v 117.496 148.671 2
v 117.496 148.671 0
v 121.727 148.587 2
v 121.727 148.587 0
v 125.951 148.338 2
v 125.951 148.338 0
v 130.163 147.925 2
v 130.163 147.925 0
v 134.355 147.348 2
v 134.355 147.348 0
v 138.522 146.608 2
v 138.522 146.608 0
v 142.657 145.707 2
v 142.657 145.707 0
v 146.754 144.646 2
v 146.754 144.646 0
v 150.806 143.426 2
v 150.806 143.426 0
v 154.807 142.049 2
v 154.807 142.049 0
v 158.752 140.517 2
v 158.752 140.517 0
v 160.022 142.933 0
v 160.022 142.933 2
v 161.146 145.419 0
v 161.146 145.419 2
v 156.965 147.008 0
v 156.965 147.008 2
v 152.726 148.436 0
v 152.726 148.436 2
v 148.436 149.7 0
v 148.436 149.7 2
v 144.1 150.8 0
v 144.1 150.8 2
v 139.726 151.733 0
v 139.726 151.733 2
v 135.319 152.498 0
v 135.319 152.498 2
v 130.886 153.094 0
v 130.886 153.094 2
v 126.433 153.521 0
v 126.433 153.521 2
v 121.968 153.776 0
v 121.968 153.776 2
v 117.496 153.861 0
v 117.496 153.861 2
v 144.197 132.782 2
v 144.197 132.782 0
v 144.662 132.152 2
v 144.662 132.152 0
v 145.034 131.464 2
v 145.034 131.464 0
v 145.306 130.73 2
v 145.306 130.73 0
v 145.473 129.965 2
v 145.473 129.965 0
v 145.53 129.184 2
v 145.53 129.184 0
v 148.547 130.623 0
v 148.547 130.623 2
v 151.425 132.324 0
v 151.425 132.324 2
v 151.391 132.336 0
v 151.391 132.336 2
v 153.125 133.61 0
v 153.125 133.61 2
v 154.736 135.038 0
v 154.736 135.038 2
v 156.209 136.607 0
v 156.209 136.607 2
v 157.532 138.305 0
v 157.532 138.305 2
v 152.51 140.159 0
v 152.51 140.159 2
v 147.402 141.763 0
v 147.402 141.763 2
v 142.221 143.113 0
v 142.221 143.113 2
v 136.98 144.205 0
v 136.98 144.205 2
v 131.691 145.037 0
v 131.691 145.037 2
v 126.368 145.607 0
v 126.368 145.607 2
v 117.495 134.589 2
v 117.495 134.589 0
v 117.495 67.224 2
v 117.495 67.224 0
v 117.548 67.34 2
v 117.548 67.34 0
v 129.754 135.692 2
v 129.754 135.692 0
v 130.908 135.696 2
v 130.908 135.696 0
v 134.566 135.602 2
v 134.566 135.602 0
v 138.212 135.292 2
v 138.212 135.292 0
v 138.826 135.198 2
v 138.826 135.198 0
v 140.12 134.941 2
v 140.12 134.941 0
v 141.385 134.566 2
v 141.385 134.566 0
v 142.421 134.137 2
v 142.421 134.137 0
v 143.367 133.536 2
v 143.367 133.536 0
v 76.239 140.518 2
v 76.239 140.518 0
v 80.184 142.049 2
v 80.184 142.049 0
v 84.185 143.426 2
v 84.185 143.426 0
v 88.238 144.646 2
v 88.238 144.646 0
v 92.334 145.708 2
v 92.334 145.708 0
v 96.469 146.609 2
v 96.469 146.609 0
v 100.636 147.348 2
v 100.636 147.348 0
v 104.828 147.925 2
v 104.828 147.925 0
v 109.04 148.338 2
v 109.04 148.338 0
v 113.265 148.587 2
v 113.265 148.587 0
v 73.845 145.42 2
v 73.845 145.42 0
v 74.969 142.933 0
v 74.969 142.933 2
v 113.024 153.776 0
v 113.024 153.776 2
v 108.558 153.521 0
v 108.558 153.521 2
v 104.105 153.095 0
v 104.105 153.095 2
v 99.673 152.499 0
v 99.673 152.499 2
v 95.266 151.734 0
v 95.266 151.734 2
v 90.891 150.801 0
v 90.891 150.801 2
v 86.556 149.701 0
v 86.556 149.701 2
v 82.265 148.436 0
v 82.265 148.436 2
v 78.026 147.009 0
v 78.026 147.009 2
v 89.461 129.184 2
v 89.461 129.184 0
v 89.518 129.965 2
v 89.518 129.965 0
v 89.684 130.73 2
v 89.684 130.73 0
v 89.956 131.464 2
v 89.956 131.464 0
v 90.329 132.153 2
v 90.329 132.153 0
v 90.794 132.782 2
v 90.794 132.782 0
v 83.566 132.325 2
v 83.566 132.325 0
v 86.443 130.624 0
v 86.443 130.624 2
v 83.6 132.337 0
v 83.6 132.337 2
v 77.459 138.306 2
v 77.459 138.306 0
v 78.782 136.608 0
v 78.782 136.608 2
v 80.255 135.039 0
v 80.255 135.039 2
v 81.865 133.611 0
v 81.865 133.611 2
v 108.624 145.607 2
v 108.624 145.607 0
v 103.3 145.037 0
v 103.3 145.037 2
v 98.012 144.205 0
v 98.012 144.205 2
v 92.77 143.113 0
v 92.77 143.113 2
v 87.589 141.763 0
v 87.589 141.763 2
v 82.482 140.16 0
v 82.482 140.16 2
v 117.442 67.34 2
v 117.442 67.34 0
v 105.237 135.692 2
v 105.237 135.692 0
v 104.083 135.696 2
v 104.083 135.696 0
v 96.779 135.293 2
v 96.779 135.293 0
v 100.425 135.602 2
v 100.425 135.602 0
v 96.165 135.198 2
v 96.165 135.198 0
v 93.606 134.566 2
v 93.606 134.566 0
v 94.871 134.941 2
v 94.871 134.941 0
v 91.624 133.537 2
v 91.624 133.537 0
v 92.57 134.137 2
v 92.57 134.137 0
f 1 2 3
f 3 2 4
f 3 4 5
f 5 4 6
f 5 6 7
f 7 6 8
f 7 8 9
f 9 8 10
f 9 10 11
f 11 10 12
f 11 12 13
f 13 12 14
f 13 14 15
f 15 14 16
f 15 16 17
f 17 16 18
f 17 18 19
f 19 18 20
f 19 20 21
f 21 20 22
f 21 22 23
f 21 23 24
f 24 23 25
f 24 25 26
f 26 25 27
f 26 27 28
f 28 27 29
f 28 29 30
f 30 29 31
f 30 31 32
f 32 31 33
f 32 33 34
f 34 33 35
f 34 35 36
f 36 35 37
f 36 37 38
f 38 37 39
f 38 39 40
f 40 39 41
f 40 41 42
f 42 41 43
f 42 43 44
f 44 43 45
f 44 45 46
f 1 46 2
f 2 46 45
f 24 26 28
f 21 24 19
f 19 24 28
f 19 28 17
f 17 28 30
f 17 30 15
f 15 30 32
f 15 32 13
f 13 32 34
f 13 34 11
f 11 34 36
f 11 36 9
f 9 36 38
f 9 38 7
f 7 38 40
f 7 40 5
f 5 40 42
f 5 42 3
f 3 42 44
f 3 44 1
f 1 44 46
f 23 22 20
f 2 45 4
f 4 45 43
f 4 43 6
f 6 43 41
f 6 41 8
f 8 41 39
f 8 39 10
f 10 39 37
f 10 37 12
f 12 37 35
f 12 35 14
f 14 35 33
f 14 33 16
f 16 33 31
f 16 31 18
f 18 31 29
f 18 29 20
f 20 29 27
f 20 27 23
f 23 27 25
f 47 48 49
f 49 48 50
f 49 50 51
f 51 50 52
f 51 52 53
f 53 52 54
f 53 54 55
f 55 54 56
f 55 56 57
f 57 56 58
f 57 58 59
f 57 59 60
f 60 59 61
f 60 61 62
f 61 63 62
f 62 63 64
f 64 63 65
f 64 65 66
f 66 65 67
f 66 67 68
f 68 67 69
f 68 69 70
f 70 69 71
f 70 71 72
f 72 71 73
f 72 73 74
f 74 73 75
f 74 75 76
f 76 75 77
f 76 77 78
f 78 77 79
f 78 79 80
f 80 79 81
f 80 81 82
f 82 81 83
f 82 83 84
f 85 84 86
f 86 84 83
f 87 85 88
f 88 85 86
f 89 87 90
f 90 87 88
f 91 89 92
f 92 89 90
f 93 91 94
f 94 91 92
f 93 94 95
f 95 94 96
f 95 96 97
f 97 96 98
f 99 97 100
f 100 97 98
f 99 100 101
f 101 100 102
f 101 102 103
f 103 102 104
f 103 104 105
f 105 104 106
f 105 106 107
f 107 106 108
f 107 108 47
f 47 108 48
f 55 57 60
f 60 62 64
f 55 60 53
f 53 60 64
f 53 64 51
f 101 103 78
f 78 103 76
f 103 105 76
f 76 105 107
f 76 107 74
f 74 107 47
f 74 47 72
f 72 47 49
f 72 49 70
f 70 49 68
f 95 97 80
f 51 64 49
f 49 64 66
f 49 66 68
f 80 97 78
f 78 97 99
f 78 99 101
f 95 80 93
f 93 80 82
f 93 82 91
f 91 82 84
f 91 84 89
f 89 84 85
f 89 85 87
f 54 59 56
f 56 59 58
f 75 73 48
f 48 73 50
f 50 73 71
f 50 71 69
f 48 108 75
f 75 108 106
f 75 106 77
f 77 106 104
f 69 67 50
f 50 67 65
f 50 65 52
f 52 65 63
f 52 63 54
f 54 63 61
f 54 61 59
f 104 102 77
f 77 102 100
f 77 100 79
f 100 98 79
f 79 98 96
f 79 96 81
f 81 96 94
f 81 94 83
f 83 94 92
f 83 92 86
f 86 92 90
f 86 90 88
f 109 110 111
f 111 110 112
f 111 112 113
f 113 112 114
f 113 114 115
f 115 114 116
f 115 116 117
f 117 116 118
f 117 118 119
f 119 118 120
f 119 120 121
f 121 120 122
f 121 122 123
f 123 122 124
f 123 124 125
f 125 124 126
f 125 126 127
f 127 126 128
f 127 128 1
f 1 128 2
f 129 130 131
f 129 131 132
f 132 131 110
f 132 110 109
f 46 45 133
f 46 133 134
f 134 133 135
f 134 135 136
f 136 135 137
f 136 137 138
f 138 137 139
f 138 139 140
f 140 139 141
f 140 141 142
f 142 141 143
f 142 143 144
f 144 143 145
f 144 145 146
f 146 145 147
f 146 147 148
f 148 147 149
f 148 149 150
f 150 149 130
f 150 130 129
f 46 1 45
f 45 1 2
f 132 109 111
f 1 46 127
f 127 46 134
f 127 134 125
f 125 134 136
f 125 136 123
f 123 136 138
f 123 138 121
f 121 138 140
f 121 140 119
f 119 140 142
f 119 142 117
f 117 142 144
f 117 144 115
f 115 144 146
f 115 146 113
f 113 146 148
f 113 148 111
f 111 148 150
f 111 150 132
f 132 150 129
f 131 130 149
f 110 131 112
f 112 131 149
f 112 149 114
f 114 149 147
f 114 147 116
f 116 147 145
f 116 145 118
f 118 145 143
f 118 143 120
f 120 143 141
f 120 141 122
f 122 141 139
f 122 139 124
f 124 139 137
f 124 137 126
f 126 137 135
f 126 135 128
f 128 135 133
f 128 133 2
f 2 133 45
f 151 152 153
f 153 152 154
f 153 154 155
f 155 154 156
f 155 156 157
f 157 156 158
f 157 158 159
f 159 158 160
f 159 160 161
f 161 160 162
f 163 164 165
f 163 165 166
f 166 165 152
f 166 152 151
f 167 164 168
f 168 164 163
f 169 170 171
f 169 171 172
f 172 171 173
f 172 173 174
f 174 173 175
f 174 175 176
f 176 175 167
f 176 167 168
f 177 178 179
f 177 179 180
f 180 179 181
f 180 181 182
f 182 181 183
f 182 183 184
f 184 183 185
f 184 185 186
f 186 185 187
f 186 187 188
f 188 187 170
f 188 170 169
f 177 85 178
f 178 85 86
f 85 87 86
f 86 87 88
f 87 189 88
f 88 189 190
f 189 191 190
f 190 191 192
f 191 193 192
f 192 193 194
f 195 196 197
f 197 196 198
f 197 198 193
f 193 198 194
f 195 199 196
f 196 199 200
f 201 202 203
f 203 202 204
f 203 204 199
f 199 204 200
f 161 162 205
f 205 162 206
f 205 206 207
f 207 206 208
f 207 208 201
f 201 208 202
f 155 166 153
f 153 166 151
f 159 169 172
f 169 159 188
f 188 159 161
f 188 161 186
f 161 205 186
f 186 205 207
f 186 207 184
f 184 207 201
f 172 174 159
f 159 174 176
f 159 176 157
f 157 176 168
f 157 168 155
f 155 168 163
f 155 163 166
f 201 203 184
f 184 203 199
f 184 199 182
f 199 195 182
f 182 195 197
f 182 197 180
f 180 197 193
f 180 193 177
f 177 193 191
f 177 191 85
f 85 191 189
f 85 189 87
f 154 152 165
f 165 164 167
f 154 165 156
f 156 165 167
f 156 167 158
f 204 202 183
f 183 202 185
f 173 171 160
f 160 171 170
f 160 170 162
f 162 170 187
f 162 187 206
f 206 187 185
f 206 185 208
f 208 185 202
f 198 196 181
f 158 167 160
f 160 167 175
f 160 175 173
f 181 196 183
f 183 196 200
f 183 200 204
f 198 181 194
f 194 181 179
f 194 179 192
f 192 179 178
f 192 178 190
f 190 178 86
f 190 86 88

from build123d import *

# Parameters (mm, degrees)
EXTRUDE_1_DEPTH   = 2
EXTRUDE_1_2_DEPTH = 2


with BuildPart() as part:
    # 草图4 → 凸台-拉伸1 (new body)
    with BuildSketch(Plane.XY):
        with BuildLine():
            Line((129.754075071, 135.691919441), (130.907867432, 135.696136475))
            ThreePointArc((130.907867432, 135.696136475), (134.565751216, 135.60175956), (138.211736169, 135.292220379))
            Line((138.211736169, 135.292220379), (138.826217651, 135.197784424))
            ThreePointArc((138.826217651, 135.197784424), (140.120063117, 134.940887305), (141.384659698, 134.56561713))
            ThreePointArc((141.384659698, 134.56561713), (142.906940981, 133.857183707), (144.196597811, 132.782007684))
            ThreePointArc((144.196597811, 132.782007684), (145.183330218, 131.10158314), (145.529755049, 129.183913374))
            ThreePointArc((145.529755049, 129.183913374), (148.547404982, 130.623014397), (151.425386163, 132.324321891))
            ThreePointArc((151.425386163, 132.324321891), (151.40801976, 132.330242443), (151.390651634, 132.336157937))
            ThreePointArc((151.390651634, 132.336157937), (154.736109947, 135.038022712), (157.532027719, 138.305285848))
            ThreePointArc((157.532027719, 138.305285848), (142.220764521, 143.112508129), (126.367587205, 145.606688512))
            Line((126.367587205, 145.606688512), (117.501791432, 134.597120738))
            Line((117.501791432, 134.597120738), (117.495472491, 134.589273862))
            Line((117.495472491, 134.589273862), (117.494872633, 67.224367653))
            Line((117.494872633, 67.224367653), (117.548172453, 67.340042661))
            Line((117.548172453, 67.340042661), (129.754075071, 135.691919441))
        make_face()
    extrude(amount=EXTRUDE_1_DEPTH)


with BuildPart() as body_2:
    # 草图4 → Extrude 1 2 (new body)
    with BuildSketch(Plane.XY):
        with BuildLine():
            Line((117.495644097, 153.860880328), (117.495597882, 148.670868738))
            ThreePointArc((117.495597882, 148.670868738), (138.52210518, 146.608292632), (158.752427095, 140.517126524))
            ThreePointArc((158.752427095, 140.517126524), (160.02206081, 142.932720764), (161.14615728, 145.419379652))
            ThreePointArc((161.14615728, 145.419379652), (139.725666091, 151.733148545), (117.495644097, 153.860880328))
        make_face()
    extrude(amount=EXTRUDE_1_2_DEPTH)


with BuildPart() as body_3:
    # 镜向1: mirrored copy
    add(body_2.part.mirror(Plane(origin=(117.494274017, -0.00104624, 2), x_dir=(0, 0, 1), z_dir=(0.999999999960354, -8.904603525034718e-06, 0))))


with BuildPart() as body_4:
    # Mirror 1 2: mirrored copy
    add(part.part.mirror(Plane(origin=(117.494274017, -0.00104624, 2), x_dir=(0, 0, 1), z_dir=(0.999999999960354, -8.904603525034718e-06, 0))))


solid = Compound([part.part, body_2.part, body_3.part, body_4.part])
